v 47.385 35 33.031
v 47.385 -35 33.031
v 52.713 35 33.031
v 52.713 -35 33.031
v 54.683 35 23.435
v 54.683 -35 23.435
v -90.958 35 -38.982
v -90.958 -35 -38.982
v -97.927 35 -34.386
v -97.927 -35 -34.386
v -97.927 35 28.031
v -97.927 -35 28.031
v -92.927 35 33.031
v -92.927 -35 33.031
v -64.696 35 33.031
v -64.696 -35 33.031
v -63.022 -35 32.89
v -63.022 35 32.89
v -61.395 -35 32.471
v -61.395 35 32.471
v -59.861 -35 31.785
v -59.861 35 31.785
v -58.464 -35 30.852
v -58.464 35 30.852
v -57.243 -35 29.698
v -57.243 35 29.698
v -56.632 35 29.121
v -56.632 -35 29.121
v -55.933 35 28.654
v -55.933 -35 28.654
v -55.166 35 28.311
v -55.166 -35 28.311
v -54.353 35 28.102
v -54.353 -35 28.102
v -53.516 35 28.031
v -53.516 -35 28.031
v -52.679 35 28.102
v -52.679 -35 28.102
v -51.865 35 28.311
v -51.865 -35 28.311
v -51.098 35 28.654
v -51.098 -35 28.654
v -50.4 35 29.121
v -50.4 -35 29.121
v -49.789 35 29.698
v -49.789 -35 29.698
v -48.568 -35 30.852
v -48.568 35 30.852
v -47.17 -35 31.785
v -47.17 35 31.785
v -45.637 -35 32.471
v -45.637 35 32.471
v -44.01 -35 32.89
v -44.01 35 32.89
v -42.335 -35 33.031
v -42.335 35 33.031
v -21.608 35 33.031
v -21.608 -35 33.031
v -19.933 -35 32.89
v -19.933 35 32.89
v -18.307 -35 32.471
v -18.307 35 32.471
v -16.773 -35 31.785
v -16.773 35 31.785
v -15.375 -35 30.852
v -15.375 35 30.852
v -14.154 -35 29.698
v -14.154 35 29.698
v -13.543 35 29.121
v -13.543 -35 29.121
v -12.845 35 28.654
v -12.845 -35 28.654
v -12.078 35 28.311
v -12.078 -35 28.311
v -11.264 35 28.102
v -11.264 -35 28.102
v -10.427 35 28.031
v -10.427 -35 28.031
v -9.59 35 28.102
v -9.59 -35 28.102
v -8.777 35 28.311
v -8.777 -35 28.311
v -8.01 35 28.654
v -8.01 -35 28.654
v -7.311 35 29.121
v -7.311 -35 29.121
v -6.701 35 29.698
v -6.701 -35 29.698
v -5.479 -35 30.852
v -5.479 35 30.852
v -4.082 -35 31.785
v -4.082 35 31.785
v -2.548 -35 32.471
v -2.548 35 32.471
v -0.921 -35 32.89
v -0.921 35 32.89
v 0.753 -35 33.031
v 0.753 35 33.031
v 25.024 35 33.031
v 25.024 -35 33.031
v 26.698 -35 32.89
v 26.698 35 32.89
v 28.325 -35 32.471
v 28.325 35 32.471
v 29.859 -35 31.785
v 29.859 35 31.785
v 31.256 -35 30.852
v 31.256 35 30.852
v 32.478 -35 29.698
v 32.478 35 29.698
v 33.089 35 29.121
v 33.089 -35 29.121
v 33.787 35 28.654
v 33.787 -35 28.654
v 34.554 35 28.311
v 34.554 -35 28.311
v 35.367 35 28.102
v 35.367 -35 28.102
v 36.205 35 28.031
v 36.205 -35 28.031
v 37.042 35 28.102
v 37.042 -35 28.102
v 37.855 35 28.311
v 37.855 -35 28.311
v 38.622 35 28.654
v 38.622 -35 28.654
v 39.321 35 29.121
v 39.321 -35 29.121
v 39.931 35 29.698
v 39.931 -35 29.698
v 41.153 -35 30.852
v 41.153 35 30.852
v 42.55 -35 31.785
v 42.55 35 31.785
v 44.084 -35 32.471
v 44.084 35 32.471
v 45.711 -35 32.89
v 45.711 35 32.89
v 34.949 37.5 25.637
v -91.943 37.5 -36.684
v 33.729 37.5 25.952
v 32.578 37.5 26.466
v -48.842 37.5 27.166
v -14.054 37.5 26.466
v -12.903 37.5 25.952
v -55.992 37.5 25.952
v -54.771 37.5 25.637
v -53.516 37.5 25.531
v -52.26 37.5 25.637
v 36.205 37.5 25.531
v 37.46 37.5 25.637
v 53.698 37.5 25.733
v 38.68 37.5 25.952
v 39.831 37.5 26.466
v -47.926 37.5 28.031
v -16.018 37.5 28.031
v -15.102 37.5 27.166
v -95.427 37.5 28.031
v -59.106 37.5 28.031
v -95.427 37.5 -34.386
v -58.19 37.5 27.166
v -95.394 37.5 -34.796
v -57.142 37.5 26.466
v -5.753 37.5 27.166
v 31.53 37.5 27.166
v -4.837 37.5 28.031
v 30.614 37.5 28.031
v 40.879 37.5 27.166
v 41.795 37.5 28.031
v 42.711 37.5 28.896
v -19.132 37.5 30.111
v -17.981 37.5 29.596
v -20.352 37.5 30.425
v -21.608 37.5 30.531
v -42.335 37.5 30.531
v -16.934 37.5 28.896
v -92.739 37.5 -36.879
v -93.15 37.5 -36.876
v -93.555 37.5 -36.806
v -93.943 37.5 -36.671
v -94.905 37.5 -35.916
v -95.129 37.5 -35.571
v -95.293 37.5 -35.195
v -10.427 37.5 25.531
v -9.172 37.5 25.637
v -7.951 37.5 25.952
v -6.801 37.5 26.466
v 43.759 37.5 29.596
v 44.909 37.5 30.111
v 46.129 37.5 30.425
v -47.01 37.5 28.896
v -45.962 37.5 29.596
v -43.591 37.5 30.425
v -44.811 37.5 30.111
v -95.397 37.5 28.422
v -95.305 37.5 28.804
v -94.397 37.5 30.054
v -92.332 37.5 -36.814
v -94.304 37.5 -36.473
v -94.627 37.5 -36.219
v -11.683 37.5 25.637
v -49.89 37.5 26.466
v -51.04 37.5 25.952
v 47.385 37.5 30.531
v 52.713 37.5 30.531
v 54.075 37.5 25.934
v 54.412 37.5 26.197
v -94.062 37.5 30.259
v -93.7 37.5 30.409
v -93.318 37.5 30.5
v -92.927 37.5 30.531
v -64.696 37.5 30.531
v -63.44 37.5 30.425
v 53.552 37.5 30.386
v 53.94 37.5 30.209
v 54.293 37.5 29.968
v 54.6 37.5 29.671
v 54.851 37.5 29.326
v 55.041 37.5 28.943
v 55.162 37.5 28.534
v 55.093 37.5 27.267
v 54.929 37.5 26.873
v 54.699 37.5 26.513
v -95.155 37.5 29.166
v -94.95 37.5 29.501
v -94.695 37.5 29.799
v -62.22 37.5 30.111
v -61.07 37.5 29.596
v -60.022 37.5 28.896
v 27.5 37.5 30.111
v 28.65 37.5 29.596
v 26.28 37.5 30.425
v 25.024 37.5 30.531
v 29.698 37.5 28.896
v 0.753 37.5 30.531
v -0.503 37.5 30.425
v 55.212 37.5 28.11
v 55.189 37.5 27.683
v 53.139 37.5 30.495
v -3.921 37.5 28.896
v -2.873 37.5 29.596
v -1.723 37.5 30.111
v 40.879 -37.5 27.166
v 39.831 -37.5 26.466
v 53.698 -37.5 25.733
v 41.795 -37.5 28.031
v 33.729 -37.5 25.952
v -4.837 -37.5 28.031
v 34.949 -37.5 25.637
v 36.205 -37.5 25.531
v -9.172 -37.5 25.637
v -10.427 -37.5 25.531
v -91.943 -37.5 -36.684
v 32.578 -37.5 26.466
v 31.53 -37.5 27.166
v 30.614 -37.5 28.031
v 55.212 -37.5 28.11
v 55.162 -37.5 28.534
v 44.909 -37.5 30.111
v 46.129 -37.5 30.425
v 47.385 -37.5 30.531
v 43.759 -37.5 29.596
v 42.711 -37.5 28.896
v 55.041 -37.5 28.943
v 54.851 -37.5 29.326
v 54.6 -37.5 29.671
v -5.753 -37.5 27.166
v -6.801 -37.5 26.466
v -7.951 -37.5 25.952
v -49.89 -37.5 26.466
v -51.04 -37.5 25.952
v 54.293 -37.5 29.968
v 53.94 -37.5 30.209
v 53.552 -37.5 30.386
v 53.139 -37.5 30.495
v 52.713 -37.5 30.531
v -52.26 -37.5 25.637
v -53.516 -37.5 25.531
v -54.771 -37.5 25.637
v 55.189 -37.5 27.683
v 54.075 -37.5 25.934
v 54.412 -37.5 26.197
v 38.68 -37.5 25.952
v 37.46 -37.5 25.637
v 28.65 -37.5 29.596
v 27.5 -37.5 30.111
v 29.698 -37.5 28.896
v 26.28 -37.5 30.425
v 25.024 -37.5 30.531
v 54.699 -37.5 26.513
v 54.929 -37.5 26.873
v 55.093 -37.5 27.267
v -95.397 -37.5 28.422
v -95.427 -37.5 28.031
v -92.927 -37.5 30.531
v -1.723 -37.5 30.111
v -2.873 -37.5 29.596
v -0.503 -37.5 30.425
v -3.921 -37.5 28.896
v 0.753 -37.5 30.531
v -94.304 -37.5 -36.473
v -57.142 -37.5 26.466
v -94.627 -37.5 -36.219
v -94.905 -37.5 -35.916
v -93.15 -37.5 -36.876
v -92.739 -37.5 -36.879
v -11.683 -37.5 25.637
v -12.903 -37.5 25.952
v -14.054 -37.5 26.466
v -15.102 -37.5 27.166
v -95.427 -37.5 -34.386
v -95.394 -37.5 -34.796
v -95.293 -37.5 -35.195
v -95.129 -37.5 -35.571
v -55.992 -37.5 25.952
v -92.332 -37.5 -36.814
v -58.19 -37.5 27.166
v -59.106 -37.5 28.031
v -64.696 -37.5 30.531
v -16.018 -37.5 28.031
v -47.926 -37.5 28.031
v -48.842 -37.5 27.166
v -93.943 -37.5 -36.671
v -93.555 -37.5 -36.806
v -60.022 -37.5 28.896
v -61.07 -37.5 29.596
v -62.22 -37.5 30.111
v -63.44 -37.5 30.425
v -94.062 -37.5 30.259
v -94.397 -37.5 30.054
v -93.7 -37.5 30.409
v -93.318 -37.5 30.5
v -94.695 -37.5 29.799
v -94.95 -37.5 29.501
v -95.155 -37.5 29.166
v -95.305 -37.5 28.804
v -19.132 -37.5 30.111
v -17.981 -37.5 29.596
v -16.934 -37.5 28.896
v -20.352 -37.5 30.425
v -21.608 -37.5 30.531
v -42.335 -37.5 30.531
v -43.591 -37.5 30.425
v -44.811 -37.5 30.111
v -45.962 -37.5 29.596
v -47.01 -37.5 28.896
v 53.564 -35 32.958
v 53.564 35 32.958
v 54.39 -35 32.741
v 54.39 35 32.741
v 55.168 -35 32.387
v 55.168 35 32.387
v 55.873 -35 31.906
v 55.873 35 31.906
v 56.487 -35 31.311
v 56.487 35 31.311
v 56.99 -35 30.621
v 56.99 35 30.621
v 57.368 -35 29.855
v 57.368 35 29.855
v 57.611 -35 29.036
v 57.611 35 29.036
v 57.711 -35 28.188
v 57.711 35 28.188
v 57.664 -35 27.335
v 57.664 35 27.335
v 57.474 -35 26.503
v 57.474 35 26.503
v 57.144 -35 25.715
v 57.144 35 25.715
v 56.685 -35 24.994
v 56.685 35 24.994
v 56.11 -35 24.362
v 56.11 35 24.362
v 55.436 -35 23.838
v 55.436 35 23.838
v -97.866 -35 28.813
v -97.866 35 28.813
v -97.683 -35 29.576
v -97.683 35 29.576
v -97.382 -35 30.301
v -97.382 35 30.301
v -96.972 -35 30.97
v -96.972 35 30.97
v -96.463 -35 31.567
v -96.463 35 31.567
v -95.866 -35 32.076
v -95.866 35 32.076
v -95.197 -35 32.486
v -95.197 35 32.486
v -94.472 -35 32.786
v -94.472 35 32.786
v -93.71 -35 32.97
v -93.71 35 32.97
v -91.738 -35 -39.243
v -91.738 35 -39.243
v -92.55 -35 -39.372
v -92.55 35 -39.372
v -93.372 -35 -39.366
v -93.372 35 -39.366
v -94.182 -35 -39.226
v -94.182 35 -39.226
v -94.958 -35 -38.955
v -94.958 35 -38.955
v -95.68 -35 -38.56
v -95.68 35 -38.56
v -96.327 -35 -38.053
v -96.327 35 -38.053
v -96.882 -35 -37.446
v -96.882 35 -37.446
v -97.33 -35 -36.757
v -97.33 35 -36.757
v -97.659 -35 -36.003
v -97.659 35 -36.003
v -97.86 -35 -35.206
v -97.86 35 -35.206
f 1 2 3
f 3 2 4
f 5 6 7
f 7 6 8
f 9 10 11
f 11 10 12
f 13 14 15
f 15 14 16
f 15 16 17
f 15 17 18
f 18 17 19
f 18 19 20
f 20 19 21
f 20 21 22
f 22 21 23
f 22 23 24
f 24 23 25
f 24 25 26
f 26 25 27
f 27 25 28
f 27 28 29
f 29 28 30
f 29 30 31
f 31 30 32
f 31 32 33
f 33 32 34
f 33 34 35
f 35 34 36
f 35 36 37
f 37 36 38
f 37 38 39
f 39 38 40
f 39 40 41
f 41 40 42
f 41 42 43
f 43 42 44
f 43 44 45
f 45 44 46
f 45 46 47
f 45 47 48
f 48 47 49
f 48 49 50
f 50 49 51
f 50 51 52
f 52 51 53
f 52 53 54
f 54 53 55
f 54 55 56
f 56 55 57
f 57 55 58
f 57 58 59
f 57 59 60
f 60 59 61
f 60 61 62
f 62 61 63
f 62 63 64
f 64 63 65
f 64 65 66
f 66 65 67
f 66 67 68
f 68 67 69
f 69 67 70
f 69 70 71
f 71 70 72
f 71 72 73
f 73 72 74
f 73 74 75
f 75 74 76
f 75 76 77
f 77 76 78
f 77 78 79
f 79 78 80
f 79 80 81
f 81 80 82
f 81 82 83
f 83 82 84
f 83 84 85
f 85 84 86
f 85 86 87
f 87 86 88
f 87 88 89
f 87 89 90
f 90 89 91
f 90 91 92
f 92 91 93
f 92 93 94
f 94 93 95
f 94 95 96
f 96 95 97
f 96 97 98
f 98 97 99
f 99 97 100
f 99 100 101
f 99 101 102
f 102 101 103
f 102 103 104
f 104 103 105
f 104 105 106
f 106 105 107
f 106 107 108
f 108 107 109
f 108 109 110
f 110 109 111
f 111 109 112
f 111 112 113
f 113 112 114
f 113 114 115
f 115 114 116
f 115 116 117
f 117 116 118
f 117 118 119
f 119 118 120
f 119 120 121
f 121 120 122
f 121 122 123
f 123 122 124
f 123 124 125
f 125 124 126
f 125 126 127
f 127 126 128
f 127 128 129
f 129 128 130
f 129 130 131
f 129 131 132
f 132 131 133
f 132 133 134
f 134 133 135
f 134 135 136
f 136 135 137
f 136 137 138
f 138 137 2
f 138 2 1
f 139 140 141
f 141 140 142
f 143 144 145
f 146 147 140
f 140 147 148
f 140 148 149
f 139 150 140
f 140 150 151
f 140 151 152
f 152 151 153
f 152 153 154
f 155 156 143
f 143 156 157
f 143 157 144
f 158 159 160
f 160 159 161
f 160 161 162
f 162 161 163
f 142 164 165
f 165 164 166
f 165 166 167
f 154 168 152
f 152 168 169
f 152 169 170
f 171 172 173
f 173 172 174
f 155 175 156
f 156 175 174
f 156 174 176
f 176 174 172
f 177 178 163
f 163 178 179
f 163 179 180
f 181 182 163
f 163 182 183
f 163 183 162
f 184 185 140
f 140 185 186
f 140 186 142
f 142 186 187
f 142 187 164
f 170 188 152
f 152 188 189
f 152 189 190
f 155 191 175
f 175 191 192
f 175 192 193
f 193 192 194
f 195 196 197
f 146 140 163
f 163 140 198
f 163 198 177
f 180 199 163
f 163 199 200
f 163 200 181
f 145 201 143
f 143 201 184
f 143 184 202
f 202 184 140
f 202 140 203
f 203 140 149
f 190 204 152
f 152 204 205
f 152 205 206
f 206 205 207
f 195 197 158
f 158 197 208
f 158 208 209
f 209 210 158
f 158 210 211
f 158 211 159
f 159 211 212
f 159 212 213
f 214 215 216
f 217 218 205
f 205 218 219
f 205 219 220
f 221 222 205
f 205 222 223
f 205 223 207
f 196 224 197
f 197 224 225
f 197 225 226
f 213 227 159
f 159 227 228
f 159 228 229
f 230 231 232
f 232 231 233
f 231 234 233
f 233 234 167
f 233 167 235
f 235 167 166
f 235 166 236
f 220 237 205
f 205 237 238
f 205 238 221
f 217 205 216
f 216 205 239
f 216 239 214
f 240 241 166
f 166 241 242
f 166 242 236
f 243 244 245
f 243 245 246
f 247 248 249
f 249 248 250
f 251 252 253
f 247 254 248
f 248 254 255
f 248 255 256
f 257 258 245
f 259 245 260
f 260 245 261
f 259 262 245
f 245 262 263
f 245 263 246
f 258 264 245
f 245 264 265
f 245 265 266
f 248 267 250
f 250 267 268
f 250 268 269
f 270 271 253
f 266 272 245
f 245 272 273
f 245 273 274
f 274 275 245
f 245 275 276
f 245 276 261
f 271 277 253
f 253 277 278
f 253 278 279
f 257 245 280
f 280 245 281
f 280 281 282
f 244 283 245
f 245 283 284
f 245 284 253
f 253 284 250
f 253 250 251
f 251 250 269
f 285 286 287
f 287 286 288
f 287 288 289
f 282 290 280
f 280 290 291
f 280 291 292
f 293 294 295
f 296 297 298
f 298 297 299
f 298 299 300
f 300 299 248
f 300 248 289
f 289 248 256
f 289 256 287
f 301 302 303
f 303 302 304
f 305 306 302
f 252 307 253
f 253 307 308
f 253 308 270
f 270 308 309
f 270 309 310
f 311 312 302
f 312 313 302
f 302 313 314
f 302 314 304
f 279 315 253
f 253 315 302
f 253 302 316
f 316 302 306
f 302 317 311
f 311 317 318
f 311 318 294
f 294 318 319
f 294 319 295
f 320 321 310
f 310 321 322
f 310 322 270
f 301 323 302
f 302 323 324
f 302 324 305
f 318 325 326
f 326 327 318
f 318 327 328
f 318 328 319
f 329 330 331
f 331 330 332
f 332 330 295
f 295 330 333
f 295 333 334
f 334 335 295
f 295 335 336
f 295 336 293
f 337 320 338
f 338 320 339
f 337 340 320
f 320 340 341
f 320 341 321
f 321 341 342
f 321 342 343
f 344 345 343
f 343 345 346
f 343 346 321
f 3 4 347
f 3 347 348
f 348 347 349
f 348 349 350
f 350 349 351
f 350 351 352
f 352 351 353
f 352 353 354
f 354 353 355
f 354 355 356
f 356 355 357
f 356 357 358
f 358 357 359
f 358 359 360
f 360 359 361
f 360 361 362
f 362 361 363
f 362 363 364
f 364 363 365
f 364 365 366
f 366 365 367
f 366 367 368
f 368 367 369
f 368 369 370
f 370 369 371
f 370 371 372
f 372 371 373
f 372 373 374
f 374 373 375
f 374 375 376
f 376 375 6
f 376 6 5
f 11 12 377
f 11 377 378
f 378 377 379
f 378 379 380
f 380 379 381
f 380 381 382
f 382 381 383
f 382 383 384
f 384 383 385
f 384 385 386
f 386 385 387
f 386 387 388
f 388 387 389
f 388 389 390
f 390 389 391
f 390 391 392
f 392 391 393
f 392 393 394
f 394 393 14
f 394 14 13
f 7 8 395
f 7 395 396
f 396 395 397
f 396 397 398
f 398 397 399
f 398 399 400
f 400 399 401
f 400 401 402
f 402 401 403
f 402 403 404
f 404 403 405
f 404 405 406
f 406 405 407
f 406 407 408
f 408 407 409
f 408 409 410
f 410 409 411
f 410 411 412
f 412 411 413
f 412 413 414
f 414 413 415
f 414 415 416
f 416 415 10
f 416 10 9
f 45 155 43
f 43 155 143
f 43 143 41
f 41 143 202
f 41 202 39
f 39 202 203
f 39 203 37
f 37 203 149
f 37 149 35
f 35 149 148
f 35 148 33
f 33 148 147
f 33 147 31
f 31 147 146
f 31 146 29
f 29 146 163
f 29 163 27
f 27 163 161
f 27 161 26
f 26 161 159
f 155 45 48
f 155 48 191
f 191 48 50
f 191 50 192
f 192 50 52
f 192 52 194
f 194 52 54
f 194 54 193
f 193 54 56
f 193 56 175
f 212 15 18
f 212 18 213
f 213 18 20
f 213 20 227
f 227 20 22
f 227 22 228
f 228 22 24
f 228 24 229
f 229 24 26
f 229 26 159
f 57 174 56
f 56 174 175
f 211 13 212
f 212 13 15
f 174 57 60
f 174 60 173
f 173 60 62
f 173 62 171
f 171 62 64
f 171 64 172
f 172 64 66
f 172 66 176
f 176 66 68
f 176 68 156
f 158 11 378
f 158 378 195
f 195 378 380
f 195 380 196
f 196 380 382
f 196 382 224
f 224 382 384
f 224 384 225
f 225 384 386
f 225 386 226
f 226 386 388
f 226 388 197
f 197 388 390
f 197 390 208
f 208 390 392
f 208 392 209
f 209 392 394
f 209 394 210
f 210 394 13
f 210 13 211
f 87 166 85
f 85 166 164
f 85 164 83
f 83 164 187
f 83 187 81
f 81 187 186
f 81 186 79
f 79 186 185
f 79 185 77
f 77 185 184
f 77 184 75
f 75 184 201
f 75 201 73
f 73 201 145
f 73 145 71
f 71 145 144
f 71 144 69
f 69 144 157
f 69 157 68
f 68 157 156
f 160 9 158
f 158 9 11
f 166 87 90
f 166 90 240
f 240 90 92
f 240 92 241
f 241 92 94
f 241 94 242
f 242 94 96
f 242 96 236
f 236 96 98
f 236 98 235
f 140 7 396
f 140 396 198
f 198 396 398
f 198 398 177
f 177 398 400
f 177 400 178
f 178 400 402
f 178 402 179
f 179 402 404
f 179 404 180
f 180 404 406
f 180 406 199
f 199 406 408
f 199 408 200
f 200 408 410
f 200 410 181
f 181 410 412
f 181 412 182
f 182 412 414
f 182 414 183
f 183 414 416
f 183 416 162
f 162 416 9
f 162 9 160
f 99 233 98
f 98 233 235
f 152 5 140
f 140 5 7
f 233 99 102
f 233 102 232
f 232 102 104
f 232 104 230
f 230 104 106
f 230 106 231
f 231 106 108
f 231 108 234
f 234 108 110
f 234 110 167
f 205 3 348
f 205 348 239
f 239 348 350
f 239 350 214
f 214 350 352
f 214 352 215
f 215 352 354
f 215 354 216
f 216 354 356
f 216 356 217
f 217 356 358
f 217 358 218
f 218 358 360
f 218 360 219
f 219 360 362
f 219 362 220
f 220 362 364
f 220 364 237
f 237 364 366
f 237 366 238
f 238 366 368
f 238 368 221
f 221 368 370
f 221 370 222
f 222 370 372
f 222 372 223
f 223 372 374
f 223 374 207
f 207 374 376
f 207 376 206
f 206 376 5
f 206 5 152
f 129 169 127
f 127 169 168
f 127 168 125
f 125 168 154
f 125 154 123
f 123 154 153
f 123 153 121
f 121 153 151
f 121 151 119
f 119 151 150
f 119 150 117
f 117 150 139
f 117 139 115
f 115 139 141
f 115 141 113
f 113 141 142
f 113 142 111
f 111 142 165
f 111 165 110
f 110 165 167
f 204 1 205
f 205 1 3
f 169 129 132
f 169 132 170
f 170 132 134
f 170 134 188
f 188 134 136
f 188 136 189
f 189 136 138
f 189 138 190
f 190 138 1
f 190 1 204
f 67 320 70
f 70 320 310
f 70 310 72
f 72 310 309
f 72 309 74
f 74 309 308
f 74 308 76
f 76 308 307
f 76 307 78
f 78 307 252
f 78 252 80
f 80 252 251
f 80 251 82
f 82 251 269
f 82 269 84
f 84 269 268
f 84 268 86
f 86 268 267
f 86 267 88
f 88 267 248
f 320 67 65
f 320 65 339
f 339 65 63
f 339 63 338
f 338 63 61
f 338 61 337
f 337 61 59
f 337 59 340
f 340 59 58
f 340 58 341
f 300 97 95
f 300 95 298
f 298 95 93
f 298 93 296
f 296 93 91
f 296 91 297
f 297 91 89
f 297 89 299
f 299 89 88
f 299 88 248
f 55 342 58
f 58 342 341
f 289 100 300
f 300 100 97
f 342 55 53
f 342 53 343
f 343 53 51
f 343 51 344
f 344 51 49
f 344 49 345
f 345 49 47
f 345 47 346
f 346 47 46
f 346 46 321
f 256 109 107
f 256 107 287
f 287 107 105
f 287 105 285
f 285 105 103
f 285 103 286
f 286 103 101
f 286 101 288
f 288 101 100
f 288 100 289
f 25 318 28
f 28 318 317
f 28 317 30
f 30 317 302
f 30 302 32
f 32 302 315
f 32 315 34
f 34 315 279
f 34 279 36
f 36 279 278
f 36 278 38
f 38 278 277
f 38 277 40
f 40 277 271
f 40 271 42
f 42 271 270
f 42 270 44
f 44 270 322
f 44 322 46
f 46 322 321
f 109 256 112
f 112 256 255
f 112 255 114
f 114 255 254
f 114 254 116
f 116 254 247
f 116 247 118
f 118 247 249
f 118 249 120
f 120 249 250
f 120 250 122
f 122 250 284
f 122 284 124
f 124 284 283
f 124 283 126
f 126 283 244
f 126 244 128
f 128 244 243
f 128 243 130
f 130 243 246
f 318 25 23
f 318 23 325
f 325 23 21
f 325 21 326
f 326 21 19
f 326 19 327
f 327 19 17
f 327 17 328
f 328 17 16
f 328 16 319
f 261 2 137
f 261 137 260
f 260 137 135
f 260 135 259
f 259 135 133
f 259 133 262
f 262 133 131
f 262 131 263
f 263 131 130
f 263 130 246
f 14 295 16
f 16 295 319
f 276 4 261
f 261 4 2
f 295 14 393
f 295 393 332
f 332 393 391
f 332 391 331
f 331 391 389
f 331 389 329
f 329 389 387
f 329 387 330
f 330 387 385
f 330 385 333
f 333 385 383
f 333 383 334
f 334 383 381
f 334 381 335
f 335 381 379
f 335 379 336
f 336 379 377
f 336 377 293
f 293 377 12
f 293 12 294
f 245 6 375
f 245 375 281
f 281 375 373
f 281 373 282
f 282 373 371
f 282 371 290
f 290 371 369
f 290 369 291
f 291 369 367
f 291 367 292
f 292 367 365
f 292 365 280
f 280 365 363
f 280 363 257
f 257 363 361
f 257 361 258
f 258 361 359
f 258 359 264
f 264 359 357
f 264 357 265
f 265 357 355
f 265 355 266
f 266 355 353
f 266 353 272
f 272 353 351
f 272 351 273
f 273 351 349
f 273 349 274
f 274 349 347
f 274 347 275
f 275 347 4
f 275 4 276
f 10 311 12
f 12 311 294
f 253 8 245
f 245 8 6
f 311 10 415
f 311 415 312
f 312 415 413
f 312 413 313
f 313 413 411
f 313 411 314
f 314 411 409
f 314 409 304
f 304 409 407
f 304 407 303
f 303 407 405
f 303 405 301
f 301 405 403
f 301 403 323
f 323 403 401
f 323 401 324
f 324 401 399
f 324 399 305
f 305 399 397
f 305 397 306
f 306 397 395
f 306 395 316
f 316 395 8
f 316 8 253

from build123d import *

# Parameters (mm, degrees)
BOSS_EXTRUDE1_DEPTH = 37.5
FILLET1_R           = 5
CHAMFER1_SIZE       = 2.5


with BuildPart() as part:
    # Sketch1 → Boss-Extrude1 (new body, symmetric)
    with BuildSketch(Plane(origin=(0, 0, 0), x_dir=(1, 0, 0), z_dir=(0, 1, 0))):
        with BuildLine():
            Line((-97.927346189, 41.968862652), (77.072653811, -33.031137348))
            Line((77.072653811, -33.031137348), (47.38494666, -33.031137348))
            ThreePointArc((47.38494666, -33.031137348), (43.302463755, -32.159846639), (39.931386735, -29.697804014))
            ThreePointArc((39.931386735, -29.697804014), (36.204606772, -28.031137348), (32.47782681, -29.697804014))
            ThreePointArc((32.47782681, -29.697804014), (29.106749789, -32.159846639), (25.024266885, -33.031137348))
            Line((25.024266885, -33.031137348), (0.752993699, -33.031137348))
            ThreePointArc((0.752993699, -33.031137348), (-3.329489206, -32.159846639), (-6.700566226, -29.697804014))
            ThreePointArc((-6.700566226, -29.697804014), (-10.427346189, -28.031137348), (-14.154126151, -29.697804014))
            ThreePointArc((-14.154126151, -29.697804014), (-17.525203172, -32.159846639), (-21.607686076, -33.031137348))
            Line((-21.607686076, -33.031137348), (-42.33546369, -33.031137348))
            ThreePointArc((-42.33546369, -33.031137348), (-46.417946594, -32.159846639), (-49.789023615, -29.697804014))
            ThreePointArc((-49.789023615, -29.697804014), (-53.515803577, -28.031137348), (-57.24258354, -29.697804014))
            ThreePointArc((-57.24258354, -29.697804014), (-60.61366056, -32.159846639), (-64.696143465, -33.031137348))
            Line((-64.696143465, -33.031137348), (-97.927346189, -33.031137348))
            Line((-97.927346189, -33.031137348), (-97.927346189, 41.968862652))
        make_face()
    extrude(amount=BOSS_EXTRUDE1_DEPTH, both=True)

    # Fillet1
    fillet1_edges = [part.edges().sort_by_distance(p)[0] for p in [
        (-97.927346189, 0, 33.031137348),
        (-97.927346189, 0, -41.968862652),
        (77.072653811, 0, 33.031137348),
    ]]
    fillet(fillet1_edges, radius=FILLET1_R)

    # Chamfer1
    chamfer1_edges = [part.edges().sort_by_distance(p)[0] for p in [
        (43.302463755, -37.5, 32.159846639),
        (36.204606772, -37.5, 28.031137348),
        (29.106749789, -37.5, 32.159846639),
        (12.888630292, -37.5, 33.031137348),
        (-3.329489206, -37.5, 32.159846639),
        (-10.427346189, -37.5, 28.031137348),
        (-17.525203172, -37.5, 32.159846639),
        (-31.971574883, -37.5, 33.031137348),
        (-46.417946594, -37.5, 32.159846639),
        (-53.515803577, -37.5, 28.031137348),
        (-60.61366056, -37.5, 32.159846639),
        (50.048989314, -37.5, 33.031137348),
        (-60.61366056, 37.5, 32.159846639),
        (-53.515803577, 37.5, 28.031137348),
        (-46.417946594, 37.5, 32.159846639),
        (-31.971574883, 37.5, 33.031137348),
        (-17.525203172, 37.5, 32.159846639),
        (-10.427346189, 37.5, 28.031137348),
        (-18.137560617, -37.5, -7.773240265),
        (-18.137560617, 37.5, -7.773240265),
        (-3.329489206, 37.5, 32.159846639),
        (-78.811744827, -37.5, 33.031137348),
        (-97.927346189, -37.5, -3.177515114),
        (-95.679801232, -37.5, -38.560373038),
        (-96.462880095, -37.5, 31.566671254),
        (57.610920582, -37.5, 29.036466709),
        (-97.927346189, 37.5, -3.177515114),
        (12.888630292, 37.5, 33.031137348),
        (-78.811744827, 37.5, 33.031137348),
        (-95.679801232, 37.5, -38.560373038),
        (-96.462880095, 37.5, 31.566671254),
        (50.048989314, 37.5, 33.031137348),
        (57.610920582, 37.5, 29.036466709),
        (29.106749789, 37.5, 32.159846639),
        (36.204606772, 37.5, 28.031137348),
        (43.302463755, 37.5, 32.159846639),
    ]]
    chamfer(chamfer1_edges, length=CHAMFER1_SIZE)


solid = part.part
